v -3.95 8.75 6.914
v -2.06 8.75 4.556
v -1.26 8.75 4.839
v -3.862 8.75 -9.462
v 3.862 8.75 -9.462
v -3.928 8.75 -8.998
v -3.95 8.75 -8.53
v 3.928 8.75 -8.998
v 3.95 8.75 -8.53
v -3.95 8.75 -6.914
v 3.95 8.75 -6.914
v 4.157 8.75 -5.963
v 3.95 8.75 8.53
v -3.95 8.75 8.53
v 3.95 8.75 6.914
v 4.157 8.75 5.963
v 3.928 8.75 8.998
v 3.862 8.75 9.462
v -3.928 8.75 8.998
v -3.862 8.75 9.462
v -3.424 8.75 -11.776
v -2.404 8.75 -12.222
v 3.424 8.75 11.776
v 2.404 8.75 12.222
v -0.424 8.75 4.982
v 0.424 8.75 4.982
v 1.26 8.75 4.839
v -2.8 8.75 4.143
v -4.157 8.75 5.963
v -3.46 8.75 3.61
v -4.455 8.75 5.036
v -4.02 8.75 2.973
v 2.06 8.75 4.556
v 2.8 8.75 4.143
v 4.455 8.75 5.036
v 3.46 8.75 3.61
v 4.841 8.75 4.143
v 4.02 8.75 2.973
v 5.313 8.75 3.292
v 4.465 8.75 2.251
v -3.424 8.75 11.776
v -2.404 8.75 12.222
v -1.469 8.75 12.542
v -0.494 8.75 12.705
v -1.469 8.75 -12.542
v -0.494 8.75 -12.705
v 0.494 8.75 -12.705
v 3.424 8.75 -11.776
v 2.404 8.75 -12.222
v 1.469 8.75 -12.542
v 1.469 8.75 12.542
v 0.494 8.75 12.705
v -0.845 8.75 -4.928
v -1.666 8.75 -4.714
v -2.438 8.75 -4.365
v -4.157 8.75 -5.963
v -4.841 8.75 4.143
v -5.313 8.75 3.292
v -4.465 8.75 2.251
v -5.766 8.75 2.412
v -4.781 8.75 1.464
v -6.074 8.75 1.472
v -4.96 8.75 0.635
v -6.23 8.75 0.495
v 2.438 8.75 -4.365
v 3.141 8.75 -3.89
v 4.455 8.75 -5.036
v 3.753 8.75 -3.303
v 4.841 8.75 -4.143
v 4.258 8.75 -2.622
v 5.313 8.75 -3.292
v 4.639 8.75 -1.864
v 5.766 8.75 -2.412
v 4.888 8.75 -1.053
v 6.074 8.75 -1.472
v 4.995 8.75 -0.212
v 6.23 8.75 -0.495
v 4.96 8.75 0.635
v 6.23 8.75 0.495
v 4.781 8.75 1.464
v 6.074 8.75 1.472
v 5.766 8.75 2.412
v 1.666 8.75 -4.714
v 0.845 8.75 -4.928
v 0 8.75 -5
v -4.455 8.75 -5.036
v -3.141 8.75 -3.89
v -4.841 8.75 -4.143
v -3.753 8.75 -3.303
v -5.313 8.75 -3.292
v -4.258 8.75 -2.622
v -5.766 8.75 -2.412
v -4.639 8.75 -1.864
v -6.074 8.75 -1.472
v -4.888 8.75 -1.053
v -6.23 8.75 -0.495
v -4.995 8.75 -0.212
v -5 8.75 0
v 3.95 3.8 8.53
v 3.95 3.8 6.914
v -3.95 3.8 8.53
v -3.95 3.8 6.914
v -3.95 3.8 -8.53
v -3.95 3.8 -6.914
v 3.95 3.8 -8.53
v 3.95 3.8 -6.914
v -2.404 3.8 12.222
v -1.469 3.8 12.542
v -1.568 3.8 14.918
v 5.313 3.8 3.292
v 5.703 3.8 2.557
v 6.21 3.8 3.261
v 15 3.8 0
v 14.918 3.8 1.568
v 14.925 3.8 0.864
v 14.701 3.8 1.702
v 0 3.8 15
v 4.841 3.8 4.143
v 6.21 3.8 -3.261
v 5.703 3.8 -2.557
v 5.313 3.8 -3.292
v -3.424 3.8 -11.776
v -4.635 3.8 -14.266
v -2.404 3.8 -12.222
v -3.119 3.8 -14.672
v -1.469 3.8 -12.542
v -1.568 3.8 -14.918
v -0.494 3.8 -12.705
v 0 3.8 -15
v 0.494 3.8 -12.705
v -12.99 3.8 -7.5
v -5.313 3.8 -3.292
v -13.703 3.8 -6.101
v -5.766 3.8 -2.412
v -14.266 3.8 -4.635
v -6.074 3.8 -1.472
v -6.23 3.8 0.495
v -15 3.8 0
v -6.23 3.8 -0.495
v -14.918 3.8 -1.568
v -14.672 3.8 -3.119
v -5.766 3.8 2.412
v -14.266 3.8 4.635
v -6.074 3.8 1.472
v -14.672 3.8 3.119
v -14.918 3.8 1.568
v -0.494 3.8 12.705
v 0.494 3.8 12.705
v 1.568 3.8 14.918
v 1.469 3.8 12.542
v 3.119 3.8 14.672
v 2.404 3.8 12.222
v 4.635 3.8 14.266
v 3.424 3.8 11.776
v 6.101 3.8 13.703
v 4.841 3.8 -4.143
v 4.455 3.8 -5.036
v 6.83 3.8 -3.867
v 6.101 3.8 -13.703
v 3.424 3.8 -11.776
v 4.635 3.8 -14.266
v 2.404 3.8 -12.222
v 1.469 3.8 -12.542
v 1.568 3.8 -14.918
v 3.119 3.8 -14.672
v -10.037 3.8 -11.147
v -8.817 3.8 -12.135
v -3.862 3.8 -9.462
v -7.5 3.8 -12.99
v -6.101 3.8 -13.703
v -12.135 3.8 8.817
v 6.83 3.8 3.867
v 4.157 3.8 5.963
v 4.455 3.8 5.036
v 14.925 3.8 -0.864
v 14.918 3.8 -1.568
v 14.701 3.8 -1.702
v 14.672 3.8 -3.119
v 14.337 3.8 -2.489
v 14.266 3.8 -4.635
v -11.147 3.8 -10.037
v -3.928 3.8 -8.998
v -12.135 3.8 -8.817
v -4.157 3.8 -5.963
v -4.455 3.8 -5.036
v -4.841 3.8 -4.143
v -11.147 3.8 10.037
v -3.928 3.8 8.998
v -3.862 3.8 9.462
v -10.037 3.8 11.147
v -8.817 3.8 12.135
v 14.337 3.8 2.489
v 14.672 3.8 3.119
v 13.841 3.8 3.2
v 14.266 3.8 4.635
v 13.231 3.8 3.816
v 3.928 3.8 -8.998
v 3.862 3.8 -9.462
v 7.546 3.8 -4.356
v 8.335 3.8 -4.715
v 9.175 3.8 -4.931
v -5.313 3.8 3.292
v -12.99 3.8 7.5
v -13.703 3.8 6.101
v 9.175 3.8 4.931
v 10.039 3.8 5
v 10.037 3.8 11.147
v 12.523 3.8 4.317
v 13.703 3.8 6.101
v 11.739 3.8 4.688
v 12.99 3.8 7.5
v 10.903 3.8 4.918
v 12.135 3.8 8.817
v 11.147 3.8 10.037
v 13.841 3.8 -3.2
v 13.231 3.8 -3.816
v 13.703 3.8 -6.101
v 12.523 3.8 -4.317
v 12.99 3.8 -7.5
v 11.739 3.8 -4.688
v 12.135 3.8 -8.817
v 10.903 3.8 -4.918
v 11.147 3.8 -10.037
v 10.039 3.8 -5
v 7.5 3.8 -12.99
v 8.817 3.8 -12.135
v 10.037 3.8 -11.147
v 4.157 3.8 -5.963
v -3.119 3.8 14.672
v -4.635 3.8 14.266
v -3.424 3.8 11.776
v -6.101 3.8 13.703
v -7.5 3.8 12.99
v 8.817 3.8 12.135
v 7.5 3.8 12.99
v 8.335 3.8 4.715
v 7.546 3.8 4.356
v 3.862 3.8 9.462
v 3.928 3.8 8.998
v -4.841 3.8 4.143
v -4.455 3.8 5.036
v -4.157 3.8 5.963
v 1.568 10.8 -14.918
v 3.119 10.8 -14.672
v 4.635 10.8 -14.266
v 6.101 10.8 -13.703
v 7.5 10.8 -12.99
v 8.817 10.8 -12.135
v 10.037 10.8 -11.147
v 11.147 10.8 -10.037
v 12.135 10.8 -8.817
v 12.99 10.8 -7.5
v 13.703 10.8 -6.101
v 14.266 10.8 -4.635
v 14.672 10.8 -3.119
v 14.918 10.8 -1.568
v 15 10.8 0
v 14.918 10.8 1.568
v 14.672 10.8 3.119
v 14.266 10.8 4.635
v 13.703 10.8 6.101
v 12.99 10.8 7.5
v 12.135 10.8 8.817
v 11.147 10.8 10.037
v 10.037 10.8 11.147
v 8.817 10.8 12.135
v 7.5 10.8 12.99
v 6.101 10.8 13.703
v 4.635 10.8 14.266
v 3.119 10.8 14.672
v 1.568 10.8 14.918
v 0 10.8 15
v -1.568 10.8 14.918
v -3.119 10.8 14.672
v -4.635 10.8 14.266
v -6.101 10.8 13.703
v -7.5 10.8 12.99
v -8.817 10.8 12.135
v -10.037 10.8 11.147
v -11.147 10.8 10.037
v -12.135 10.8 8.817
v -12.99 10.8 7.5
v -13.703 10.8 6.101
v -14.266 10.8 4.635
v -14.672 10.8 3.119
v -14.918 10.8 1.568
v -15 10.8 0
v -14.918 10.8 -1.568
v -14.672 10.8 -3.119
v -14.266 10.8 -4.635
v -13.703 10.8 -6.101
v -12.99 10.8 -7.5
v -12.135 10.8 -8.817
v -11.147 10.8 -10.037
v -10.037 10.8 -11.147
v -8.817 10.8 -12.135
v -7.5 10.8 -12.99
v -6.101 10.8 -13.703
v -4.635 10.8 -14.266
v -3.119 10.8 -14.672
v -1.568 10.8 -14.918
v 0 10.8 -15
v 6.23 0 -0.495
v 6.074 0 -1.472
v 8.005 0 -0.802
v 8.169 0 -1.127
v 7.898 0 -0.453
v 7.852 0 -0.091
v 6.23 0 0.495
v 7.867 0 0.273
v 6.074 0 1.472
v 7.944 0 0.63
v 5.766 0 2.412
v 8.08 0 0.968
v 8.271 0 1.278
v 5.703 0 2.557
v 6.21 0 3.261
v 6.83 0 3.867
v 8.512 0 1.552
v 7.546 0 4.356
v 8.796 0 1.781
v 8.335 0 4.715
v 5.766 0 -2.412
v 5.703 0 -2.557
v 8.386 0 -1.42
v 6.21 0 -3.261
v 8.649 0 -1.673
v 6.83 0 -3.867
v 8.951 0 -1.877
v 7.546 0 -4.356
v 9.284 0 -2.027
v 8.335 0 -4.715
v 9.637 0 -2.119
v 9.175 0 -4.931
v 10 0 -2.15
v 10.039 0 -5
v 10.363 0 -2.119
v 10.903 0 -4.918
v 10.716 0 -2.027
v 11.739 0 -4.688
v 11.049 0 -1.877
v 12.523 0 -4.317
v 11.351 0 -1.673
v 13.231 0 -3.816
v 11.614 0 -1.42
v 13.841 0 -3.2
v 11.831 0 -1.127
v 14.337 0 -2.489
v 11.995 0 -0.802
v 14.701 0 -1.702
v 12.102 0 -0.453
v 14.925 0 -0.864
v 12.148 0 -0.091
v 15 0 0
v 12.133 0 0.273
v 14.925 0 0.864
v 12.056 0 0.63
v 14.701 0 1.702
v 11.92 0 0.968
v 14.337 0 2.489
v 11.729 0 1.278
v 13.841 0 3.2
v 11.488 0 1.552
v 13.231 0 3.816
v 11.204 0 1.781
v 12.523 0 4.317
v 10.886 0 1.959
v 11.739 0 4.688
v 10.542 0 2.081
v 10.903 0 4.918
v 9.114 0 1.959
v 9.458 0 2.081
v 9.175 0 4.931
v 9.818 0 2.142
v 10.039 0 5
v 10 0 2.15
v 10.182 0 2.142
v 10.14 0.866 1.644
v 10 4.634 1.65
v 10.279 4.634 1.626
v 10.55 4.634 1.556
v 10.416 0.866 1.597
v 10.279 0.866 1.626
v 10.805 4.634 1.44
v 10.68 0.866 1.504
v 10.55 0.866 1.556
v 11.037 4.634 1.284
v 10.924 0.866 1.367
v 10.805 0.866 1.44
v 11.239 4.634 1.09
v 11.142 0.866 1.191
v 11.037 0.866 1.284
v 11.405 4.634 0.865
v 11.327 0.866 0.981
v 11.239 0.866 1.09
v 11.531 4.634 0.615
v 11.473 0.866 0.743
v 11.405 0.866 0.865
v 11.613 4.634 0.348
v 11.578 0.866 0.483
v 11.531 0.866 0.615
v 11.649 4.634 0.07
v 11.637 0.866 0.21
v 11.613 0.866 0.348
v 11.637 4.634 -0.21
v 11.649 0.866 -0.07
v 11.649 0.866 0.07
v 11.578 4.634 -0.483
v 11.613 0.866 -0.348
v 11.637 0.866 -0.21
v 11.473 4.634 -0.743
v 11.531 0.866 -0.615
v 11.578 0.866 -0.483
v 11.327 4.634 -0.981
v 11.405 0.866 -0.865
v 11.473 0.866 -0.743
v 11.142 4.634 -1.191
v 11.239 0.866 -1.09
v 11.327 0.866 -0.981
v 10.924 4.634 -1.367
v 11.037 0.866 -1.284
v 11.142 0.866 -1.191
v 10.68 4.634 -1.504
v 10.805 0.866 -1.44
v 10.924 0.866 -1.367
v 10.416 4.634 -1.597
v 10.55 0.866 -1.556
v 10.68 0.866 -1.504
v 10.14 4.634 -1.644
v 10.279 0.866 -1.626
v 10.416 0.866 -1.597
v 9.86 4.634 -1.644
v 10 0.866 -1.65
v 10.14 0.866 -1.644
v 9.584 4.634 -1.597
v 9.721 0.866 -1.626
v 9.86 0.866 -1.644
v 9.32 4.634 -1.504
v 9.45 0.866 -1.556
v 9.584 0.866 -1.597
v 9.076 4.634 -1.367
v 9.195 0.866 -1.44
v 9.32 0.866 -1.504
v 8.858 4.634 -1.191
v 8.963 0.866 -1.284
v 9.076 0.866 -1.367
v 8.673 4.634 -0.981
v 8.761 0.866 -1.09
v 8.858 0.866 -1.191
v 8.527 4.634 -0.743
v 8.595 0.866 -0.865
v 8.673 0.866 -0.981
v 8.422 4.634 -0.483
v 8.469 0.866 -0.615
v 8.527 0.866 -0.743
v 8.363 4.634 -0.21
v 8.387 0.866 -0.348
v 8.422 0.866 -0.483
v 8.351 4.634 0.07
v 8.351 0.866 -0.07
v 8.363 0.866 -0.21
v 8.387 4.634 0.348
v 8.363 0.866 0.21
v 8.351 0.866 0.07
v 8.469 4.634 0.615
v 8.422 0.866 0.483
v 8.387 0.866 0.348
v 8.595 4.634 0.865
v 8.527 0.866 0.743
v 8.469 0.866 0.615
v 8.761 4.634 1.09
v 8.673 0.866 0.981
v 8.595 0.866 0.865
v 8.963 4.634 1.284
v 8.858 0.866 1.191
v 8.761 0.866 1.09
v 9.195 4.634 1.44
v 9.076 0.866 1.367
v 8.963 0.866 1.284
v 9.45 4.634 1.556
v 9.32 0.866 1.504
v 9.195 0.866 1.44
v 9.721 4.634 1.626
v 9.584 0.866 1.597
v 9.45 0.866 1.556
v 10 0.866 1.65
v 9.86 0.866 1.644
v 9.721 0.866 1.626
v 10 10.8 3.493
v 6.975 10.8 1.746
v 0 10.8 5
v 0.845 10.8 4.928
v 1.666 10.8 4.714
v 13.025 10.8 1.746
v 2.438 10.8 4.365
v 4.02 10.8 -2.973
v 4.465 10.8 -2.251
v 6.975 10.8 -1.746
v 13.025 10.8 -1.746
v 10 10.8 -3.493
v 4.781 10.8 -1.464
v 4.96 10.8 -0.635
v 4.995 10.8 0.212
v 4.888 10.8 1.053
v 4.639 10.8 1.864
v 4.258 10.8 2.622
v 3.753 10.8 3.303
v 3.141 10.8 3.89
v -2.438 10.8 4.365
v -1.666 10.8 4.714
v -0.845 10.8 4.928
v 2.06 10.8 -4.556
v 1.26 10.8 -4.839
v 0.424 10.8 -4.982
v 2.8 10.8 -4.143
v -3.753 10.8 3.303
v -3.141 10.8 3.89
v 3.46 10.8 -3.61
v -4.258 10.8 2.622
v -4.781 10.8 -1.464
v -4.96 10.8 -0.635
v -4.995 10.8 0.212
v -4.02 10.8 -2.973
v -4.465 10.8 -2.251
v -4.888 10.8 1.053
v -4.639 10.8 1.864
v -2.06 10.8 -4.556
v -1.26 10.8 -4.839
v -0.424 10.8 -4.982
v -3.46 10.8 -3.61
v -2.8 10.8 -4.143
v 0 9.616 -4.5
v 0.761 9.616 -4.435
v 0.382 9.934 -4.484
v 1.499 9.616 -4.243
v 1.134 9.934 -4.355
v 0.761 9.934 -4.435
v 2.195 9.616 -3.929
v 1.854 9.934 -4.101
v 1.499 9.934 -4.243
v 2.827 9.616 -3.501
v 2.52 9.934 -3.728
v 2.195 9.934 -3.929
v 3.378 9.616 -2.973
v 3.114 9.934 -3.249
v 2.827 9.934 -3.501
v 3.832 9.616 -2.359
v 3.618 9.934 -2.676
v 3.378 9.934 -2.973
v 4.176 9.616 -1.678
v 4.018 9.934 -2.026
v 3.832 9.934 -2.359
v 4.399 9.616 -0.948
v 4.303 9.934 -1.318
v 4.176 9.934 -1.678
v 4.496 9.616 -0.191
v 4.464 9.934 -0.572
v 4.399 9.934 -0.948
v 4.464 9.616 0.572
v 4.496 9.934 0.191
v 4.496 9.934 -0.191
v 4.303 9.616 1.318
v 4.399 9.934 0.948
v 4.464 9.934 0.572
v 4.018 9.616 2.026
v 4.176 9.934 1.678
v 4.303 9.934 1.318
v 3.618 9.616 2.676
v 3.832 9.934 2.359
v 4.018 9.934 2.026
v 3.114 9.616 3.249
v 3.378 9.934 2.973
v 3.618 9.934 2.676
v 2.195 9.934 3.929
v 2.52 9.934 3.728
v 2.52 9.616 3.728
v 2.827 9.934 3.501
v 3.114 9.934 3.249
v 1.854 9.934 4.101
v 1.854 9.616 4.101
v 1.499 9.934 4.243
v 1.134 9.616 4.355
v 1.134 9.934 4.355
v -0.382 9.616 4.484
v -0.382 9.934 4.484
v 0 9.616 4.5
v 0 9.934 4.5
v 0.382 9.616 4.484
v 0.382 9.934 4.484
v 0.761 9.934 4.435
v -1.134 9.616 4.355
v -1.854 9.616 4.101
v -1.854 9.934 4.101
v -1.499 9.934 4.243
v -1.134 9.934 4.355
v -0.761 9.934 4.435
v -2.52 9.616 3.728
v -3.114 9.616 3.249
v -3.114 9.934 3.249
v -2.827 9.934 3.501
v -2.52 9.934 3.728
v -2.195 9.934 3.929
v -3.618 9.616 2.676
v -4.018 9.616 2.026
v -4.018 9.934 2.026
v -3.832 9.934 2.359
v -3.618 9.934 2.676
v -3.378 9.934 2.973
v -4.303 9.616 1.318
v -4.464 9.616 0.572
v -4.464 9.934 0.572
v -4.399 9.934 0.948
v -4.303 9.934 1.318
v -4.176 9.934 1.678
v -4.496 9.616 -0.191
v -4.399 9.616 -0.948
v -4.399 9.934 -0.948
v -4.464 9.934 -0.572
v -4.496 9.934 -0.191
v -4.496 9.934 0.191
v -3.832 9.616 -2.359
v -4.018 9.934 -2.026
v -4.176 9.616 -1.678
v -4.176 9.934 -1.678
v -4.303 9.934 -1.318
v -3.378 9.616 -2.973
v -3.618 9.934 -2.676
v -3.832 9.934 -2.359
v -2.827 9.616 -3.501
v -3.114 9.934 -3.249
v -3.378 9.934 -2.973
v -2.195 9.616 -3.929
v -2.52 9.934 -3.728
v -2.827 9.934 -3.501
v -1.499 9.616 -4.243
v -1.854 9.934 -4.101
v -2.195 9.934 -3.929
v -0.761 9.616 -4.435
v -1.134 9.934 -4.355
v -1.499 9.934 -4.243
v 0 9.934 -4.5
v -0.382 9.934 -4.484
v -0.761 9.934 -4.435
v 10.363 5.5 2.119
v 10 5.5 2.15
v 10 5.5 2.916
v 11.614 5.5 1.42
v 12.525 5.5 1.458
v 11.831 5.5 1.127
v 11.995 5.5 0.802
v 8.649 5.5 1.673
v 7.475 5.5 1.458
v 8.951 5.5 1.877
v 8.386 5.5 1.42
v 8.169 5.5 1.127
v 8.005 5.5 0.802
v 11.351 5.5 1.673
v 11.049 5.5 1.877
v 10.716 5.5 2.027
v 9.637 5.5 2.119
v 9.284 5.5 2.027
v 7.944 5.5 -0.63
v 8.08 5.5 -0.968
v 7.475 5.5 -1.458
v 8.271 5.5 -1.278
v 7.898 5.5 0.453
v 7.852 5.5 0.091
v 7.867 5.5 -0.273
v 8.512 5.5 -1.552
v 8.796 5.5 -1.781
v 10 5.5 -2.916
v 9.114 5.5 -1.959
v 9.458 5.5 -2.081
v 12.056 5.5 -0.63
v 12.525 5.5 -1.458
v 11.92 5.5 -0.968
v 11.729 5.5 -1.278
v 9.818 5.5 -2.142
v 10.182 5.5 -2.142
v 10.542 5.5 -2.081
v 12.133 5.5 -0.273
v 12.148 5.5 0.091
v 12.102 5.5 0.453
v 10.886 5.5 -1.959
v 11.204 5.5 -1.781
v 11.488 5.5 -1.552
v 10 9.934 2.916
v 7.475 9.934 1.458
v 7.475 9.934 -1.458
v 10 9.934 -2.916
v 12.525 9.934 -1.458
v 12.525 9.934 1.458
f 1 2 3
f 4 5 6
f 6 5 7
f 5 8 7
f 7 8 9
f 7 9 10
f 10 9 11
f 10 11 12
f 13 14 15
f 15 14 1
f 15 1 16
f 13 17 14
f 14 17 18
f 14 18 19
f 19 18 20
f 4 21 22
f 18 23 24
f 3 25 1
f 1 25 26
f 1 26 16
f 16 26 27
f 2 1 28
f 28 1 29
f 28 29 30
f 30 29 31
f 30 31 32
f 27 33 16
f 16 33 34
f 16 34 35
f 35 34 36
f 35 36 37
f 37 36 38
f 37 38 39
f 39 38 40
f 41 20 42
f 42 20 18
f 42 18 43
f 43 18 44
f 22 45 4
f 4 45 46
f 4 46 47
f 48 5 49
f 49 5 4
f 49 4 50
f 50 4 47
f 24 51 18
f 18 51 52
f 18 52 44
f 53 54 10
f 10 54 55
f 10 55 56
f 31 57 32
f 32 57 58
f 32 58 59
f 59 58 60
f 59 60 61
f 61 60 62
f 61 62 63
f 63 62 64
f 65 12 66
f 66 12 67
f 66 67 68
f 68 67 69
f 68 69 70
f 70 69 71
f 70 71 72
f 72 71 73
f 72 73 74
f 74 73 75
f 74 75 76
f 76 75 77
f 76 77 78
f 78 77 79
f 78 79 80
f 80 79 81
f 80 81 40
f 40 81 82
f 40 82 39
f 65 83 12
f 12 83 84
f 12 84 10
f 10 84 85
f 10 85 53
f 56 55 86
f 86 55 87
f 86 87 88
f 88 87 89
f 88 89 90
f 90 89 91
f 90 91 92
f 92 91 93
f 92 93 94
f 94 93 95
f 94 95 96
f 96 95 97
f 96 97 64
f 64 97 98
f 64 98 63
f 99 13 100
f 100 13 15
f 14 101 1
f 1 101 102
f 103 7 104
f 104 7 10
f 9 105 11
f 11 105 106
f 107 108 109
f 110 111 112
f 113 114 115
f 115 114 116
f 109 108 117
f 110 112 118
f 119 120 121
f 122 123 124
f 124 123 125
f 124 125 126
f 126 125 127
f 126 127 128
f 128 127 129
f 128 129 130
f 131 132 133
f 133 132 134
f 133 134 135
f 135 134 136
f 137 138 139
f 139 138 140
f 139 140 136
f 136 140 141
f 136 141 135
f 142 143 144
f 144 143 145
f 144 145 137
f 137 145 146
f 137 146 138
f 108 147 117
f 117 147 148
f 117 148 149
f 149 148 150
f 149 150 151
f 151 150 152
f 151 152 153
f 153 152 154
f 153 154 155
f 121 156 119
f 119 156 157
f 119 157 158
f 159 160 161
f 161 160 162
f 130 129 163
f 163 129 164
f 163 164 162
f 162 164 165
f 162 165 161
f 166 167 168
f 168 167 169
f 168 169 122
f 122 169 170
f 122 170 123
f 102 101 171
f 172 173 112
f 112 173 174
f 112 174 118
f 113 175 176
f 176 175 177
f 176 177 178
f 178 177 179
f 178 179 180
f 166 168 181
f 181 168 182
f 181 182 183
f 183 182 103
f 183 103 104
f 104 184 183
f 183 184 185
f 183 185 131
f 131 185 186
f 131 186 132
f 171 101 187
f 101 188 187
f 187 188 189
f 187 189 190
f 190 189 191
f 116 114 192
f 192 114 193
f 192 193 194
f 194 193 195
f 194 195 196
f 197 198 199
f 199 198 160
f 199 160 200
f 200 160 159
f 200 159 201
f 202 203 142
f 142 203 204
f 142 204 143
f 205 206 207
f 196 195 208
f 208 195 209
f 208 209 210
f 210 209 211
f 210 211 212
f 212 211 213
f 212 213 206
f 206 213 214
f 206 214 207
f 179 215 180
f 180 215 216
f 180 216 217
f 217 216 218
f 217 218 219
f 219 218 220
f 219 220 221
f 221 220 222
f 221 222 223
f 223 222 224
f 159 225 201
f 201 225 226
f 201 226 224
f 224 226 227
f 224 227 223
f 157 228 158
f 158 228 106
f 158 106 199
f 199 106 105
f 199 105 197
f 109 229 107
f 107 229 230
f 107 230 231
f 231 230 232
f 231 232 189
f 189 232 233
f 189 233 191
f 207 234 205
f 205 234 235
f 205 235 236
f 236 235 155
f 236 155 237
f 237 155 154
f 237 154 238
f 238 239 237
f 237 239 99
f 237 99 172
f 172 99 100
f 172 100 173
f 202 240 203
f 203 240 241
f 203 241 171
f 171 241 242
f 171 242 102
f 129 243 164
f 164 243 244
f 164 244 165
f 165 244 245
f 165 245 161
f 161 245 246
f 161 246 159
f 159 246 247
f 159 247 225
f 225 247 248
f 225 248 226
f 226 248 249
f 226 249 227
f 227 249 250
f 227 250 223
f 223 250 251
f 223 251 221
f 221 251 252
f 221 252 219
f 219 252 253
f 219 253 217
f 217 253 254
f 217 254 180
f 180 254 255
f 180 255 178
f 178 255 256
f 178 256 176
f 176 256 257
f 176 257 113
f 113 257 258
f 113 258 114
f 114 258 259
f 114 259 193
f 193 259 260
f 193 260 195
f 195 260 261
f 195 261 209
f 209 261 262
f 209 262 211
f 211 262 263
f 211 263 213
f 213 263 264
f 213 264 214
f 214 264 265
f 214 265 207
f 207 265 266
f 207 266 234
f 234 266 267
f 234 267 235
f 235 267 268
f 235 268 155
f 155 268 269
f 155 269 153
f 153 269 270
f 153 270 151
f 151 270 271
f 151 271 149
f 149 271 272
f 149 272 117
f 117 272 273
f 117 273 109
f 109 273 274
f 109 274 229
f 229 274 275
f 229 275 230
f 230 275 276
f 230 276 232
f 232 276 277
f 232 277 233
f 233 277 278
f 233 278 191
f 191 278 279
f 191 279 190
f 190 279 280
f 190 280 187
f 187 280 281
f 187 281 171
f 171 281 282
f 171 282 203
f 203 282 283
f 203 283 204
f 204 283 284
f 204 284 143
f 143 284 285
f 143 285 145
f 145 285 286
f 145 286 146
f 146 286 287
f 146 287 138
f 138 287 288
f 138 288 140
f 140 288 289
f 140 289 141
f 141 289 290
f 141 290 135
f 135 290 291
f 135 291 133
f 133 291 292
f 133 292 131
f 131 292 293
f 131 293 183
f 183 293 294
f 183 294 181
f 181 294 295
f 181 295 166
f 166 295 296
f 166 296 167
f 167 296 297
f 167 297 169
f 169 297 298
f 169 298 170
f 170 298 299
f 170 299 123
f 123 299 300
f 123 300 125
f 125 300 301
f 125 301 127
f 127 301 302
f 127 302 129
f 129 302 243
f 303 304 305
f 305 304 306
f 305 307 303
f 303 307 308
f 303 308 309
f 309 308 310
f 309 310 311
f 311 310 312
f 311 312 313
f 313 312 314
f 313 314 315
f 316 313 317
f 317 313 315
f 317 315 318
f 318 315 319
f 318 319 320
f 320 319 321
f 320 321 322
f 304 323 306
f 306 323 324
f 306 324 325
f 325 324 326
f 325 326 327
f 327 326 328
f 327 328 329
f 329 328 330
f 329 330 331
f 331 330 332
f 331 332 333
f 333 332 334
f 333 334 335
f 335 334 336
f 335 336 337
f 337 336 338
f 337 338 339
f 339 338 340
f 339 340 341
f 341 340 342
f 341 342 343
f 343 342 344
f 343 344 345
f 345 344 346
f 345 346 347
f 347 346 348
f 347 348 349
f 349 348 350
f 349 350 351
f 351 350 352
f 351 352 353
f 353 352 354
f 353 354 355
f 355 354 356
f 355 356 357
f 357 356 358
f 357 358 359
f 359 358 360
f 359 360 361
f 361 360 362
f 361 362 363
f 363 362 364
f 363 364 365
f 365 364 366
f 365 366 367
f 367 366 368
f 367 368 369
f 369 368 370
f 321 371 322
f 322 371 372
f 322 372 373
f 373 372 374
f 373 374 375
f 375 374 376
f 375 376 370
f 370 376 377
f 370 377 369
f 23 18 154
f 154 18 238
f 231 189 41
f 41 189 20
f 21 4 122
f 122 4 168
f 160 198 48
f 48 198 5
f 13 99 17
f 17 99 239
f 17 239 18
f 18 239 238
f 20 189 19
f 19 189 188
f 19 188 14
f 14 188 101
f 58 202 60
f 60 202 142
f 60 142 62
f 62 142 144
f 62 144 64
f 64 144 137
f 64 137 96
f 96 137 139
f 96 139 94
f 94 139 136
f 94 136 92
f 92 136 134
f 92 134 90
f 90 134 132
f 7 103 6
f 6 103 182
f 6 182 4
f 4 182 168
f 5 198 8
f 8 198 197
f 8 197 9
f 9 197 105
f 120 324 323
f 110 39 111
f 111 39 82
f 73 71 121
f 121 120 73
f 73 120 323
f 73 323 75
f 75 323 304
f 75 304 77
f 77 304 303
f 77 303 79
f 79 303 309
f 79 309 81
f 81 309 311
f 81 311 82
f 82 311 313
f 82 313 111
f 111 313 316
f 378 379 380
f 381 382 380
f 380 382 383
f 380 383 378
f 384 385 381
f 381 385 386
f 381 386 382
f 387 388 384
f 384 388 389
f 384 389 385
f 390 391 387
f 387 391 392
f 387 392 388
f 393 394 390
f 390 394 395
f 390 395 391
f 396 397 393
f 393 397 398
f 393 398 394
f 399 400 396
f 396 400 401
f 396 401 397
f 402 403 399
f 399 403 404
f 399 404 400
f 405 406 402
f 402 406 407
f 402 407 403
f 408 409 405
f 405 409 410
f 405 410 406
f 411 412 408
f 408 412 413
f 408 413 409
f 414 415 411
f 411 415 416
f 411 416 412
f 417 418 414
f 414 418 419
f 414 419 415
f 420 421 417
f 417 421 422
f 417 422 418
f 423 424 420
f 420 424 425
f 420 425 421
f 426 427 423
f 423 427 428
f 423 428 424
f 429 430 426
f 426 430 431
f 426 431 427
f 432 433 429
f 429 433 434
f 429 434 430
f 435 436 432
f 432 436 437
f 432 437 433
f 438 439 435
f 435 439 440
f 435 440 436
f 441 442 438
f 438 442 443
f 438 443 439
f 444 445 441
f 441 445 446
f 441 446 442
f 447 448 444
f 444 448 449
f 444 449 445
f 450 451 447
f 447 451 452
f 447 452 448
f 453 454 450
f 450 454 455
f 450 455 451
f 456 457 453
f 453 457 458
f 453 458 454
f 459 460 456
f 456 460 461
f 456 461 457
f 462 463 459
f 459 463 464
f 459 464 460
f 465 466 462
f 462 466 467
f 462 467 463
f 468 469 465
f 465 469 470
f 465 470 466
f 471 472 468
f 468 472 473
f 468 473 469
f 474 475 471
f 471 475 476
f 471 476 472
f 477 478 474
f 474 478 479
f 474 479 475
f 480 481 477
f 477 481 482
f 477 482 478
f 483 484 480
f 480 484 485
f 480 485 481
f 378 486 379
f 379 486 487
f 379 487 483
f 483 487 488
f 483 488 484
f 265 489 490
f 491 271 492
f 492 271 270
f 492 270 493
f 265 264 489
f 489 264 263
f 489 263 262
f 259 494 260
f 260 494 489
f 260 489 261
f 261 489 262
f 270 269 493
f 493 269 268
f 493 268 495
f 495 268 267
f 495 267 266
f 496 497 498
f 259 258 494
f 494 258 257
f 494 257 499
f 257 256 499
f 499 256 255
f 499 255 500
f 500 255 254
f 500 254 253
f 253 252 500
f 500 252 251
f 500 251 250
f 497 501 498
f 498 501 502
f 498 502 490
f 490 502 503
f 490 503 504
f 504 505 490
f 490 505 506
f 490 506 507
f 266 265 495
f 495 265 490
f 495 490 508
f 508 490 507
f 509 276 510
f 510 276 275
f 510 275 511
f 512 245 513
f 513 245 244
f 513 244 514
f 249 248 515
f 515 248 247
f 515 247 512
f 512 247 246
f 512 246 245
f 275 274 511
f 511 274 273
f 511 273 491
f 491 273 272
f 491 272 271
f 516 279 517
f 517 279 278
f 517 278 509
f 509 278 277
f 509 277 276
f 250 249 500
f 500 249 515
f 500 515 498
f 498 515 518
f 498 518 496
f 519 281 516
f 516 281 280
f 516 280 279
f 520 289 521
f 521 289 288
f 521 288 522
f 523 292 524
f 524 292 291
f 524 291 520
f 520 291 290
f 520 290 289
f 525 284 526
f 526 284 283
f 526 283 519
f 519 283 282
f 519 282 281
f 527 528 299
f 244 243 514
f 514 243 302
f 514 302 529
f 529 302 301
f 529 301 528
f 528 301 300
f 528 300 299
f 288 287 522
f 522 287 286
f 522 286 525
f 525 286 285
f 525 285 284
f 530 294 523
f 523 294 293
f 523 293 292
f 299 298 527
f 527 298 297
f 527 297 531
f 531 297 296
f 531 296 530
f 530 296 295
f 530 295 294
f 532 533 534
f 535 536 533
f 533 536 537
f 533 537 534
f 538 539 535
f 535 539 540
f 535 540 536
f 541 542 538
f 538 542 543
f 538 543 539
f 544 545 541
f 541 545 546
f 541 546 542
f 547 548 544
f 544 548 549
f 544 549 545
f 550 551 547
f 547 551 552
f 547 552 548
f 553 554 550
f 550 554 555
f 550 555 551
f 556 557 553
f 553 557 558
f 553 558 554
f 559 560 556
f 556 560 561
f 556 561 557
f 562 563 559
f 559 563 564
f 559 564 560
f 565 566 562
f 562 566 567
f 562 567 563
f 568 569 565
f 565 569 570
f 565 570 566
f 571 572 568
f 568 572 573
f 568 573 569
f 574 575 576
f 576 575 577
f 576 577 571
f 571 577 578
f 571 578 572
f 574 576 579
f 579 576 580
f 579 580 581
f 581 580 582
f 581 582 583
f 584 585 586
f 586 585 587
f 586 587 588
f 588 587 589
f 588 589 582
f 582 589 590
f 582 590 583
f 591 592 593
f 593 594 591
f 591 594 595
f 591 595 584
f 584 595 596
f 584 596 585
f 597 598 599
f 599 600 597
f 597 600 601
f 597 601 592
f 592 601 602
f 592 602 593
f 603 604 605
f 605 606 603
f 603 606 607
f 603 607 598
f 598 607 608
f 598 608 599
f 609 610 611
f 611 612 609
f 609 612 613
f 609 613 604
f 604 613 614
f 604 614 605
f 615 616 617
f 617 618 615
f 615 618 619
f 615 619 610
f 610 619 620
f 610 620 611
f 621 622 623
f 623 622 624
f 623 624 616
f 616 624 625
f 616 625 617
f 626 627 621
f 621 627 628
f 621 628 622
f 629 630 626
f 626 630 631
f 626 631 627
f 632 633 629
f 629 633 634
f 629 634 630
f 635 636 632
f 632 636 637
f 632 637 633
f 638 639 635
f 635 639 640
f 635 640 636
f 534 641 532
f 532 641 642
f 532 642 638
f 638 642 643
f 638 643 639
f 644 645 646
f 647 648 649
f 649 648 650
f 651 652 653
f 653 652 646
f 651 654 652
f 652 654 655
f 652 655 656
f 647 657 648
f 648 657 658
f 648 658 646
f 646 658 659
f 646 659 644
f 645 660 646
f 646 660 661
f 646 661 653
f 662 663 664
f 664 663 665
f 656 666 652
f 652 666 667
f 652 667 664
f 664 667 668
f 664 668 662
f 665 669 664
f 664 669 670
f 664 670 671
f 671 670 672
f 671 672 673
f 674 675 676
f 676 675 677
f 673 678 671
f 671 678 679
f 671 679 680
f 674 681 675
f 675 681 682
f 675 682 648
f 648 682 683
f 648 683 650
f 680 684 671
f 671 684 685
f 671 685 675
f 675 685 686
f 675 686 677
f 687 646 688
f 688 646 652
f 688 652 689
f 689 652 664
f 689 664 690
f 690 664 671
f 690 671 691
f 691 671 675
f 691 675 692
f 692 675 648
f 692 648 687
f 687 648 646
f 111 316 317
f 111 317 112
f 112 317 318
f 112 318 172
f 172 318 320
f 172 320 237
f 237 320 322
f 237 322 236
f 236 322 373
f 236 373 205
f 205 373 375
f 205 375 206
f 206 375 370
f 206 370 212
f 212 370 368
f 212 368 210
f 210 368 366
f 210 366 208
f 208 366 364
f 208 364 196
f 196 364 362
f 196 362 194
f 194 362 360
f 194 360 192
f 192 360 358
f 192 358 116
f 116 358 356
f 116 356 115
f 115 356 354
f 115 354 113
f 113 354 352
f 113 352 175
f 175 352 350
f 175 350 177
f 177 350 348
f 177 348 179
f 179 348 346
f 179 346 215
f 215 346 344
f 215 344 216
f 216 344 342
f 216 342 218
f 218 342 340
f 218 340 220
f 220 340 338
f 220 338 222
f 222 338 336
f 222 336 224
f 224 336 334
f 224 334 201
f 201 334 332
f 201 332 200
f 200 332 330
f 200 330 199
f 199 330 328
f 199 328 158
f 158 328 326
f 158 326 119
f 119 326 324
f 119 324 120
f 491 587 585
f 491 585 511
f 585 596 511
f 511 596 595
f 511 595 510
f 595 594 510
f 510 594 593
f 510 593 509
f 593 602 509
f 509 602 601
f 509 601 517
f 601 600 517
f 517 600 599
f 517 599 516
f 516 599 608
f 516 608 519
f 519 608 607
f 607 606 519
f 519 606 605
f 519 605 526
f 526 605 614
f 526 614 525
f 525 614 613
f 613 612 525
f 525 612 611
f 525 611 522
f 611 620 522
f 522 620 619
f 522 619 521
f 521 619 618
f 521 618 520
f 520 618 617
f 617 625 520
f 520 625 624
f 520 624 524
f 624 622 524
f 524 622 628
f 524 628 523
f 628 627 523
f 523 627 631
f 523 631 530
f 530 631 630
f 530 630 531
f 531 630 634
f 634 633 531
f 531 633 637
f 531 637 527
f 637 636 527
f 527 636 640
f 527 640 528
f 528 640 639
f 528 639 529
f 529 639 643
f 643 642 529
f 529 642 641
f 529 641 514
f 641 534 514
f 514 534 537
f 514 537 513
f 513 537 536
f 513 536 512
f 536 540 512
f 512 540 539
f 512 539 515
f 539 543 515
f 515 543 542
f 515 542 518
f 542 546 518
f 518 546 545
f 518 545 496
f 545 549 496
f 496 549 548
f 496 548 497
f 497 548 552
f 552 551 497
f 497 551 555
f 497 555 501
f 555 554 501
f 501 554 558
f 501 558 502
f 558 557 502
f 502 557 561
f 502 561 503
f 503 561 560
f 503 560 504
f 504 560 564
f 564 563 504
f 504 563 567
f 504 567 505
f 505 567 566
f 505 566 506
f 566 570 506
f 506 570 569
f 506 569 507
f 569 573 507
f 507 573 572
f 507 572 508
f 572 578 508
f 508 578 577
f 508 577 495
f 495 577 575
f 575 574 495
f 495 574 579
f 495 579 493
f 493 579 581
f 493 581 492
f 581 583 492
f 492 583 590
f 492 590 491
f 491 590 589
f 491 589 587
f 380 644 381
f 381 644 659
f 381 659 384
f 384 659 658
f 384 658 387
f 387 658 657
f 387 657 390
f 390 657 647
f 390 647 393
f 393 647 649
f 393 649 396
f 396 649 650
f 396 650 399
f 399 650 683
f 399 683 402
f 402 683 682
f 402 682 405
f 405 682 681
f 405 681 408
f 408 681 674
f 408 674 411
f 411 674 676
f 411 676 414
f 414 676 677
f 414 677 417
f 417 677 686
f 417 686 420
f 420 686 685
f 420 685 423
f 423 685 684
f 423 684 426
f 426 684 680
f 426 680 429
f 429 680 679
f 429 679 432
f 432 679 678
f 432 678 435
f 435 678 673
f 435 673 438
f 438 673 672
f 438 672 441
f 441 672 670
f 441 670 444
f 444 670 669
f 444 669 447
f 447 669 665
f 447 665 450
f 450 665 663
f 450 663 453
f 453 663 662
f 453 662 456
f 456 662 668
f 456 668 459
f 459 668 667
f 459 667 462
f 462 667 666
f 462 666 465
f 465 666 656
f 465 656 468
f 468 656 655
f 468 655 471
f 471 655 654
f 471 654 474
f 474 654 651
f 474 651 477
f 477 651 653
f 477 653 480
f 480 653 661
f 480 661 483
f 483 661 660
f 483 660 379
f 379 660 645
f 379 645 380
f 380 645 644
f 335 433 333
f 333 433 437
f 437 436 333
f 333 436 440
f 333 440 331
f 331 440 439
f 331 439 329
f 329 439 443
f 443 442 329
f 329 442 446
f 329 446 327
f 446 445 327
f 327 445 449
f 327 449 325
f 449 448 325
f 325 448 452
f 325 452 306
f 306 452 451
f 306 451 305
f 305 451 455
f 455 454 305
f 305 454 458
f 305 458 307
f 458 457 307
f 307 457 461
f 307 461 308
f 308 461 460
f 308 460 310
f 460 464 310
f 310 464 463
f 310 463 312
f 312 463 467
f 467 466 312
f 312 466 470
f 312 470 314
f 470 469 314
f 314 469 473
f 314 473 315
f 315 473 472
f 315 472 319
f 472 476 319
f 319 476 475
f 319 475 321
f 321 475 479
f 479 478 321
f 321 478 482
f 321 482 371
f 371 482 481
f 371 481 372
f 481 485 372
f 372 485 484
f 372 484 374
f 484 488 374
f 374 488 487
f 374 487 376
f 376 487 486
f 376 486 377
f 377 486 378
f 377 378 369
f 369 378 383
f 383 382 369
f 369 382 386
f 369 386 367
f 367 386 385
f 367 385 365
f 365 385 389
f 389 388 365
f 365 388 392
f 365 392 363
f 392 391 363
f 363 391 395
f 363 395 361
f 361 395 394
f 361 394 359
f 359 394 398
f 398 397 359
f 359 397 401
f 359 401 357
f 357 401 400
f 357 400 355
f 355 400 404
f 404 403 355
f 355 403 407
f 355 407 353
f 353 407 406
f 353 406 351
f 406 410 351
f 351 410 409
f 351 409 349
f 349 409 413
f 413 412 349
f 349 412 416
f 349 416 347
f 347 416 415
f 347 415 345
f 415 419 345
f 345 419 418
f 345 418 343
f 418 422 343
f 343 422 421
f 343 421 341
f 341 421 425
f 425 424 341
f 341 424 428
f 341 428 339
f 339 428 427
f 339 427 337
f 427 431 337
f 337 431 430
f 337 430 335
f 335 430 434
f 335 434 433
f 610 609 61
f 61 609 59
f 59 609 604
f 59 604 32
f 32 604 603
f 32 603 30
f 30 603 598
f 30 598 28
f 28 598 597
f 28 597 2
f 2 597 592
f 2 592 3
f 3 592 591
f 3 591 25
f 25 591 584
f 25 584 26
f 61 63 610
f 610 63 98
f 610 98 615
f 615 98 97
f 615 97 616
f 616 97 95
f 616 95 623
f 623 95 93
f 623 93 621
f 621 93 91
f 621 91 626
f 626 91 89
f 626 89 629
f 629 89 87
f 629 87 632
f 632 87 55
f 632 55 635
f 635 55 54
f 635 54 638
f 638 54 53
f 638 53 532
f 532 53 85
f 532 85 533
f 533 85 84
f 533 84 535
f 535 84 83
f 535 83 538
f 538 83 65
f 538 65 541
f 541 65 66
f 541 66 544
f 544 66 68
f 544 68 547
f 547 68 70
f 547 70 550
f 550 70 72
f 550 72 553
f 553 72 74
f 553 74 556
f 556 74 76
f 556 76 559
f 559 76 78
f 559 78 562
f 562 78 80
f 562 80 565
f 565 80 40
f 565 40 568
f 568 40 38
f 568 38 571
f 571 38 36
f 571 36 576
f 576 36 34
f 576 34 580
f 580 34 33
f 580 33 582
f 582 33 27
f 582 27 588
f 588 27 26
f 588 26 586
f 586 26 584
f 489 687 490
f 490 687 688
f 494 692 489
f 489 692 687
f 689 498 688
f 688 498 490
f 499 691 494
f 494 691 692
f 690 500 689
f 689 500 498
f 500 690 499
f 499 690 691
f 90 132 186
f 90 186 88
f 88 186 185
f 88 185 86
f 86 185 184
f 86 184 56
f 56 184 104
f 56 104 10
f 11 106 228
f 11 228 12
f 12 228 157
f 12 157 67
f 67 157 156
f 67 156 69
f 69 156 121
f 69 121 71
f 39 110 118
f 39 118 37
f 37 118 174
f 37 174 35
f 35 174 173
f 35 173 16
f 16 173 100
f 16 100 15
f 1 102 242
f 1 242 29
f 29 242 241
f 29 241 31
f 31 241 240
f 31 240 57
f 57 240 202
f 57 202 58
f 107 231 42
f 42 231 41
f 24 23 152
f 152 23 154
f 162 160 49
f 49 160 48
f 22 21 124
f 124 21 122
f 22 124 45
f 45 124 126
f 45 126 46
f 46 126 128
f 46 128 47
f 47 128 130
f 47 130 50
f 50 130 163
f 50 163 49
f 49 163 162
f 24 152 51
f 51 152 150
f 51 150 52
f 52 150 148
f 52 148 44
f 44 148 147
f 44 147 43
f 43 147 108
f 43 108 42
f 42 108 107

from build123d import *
from OCP.BRepFilletAPI import BRepFilletAPI_MakeChamfer

# Parameters (mm, degrees)
SKETCH_1_R          = 15
EXTRUDE_1_DEPTH     = 10.8
SKETCH_2_R          = 2
SKETCH_2_R_2        = 1.6500000000000006
CUT_EXTRUDE_1_DEPTH = 24.804201309852846
CUT_EXTRUDE_START   = -8.75
CUT_EXTRUDE_2_DEPTH = 8.75
SKETCH_8_R          = 4.5
CUT_EXTRUDE_3_DEPTH = 23.946949687399407
CUT_EXTRUDE_4_DEPTH = 5.3
SKETCH_10_R         = 20.165884728601043
SKETCH_10_R_2       = 4.999999999999998
CUT_EXTRUDE_5_DEPTH = 3.8
CHAMFER_1_SIZE      = 0.5
CHAMFER_1_SIZE2     = 0.8660254037844434
CHAMFER_1_SIZE2_2   = 0.866025403784443
CHAMFER_2_SIZE      = 0.5
CHAMFER_2_SIZE2     = 0.8660254037844434
CHAMFER_5_SIZE      = 3
CUT_EXTRUDE_8_DEPTH = 4.949999997
FILLET_1_R          = 10
EXTRUDE_3_DEPTH     = 4.949999997
FILLET_2_R          = 6


with BuildPart() as part:
    # 草图1 → 凸台-拉伸1 (new body)
    with BuildSketch(Plane(origin=(0, 0, 0), x_dir=(1, 0, 0), z_dir=(0, 1, 0))):
        with Locations(Location((0, 0, 0), (0, 0, 90))):
            Circle(SKETCH_1_R)
    extrude(amount=EXTRUDE_1_DEPTH)

    # 草图2 → 切除-拉伸1 (cut, through all)
    with BuildSketch(Plane(origin=(0, 10.8, 0), x_dir=(1, 0, 0), z_dir=(0, 1, 0))):
        with Locations(Location((0, 0, 0), (0, 0, 270))):
            Circle(SKETCH_2_R)
        with Locations(Location((10, 0, 0), (0, 0, 270))):
            Circle(SKETCH_2_R_2)
    extrude(amount=-CUT_EXTRUDE_1_DEPTH, mode=Mode.SUBTRACT)

    # 草图7 → 切除-拉伸2 (cut)
    with BuildSketch(Plane.XZ.offset(CUT_EXTRUDE_START)):
        with BuildLine():
            Line((3.9499999999999917, -8.530207271324839), (3.9499999999999926, -5.297169055259961))
            ThreePointArc((3.9499999999999926, -5.297169055259961), (4.032732694169919, -4.898896925108727), (4.267241379310367, -4.566525047637877))
            ThreePointArc((4.267241379310367, -4.566525047637877), (6.250000000000189, 1.0156e-13), (4.2672413793103745, 4.5665250476380885))
            ThreePointArc((4.2672413793103745, 4.5665250476380885), (4.03273269416984, 4.898896925108895), (3.9500000000000046, 5.297169055260161))
            Line((3.9500000000000046, 5.297169055260161), (3.9500000000000046, 8.530207271324992))
            ThreePointArc((3.9500000000000046, 8.530207271324992), (3.9280745447413654, 8.997939916110184), (3.8624904692009197, 9.461570460424896))
            Line((3.8624904692009197, 9.461570460424896), (2.357995425216292, 17.39705433076952))
            ThreePointArc((2.357995425216292, 17.39705433076952), (-3.9497e-13, 19.350000000001156), (-2.357995425216957, 17.397054330769397))
            Line((-2.357995425216957, 17.397054330769397), (-3.8624904692015747, 9.461570460424964))
            ThreePointArc((-3.8624904692015747, 9.461570460424964), (-3.9280745447421004, 8.997939916110258), (-3.950000000000667, 8.530207271325056))
            Line((-3.950000000000667, 8.530207271325056), (-3.9500000000006588, 5.297169055260163))
            ThreePointArc((-3.9500000000006588, 5.297169055260163), (-4.0327326941706, 4.898896925108942), (-4.267241379311038, 4.5665250476381))
            ThreePointArc((-4.267241379311038, 4.5665250476381), (-6.250000000000874, 1.1135e-13), (-4.267241379311047, -4.566525047637879))
            ThreePointArc((-4.267241379311047, -4.566525047637879), (-4.032732694170509, -4.898896925108689), (-3.9500000000006716, -5.29716905525996))
            Line((-3.9500000000006716, -5.29716905525996), (-3.950000000000676, -8.530207271324784))
            ThreePointArc((-3.950000000000676, -8.530207271324784), (-3.9280745447420373, -8.997939916109978), (-3.862490469201592, -9.461570460424696))
            Line((-3.862490469201592, -9.461570460424696), (-2.3579954252169664, -17.397054330769286))
            ThreePointArc((-2.3579954252169664, -17.397054330769286), (-2.7734e-13, -19.35000000000094), (2.3579954252163073, -17.39705433076917))
            Line((2.3579954252163073, -17.39705433076917), (3.8624904692009046, -9.461570460424774))
            ThreePointArc((3.8624904692009046, -9.461570460424774), (3.9280745447414347, -8.997939916110052), (3.9499999999999917, -8.530207271324839))
        make_face()
    extrude(amount=CUT_EXTRUDE_2_DEPTH, mode=Mode.SUBTRACT)

    # 草图8 → 切除-拉伸3 (cut, through all)
    with BuildSketch(Plane.XZ.offset(-8.749999997487969)):
        with Locations(Location((0, 0, 0), (0, 0, 270))):
            Circle(SKETCH_8_R)
    extrude(amount=-CUT_EXTRUDE_3_DEPTH, mode=Mode.SUBTRACT)

    # 草图9 → 切除-拉伸4 (cut)
    with BuildSketch(Plane(origin=(0, 10.8, 0), x_dir=(1, 0, 0), z_dir=(0, 1, 0))):
        Polygon((10.000000000000002, -2.9156188594076102), (12.525000000000002, -1.4578094297038038), (12.525000000000002, 1.457809429703804), (10.000000000000002, 2.915618859407609), (7.475000000000001, 1.4578094297038038), (7.475000000000001, -1.457809429703805), align=None)
    extrude(amount=-CUT_EXTRUDE_4_DEPTH, mode=Mode.SUBTRACT)

    # 草图10 → 切除-拉伸5 (cut)
    with BuildSketch(Plane.XZ):
        Circle(SKETCH_10_R)
        with Locations((10, 0)):
            Circle(SKETCH_10_R_2, mode=Mode.SUBTRACT)
    extrude(amount=-CUT_EXTRUDE_5_DEPTH, mode=Mode.SUBTRACT)

    # 倒角1: one chamfer whose edges measure the first distance from different faces: ONE call of the kernel's chamfer builder (chamfer() names one face for all edges)
    chamfer_1_edges_1 = [part.edges().sort_by_distance(p)[0] for p in [
        (1.63e-14, 8.749999997487969, 4.5),
    ]]
    chamfer_1_side_1 = [part.faces().sort_by_distance(p)[0] for p in [
        (-5.92500000000087, 8.75, 1.129e-13),
    ]]
    chamfer_1_edges_2 = [part.edges().sort_by_distance(p)[0] for p in [
        (1.629e-14, 10.8, 4.5),
    ]]
    chamfer_1_side_2 = [part.faces().sort_by_distance(p)[0] for p in [
        (-9.15e-15, 10.8, 14.575735931288072),
    ]]
    chamfer_1_edges_3 = [part.edges().sort_by_distance(p)[0] for p in [
        (10, 5.500000000000001, -1.6500000000000006),
    ]]
    chamfer_1_side_3 = [part.faces().sort_by_distance(p)[0] for p in [
        (11.22392998790079, 5.500000000000001, 2.1199089239513262),
    ]]
    chamfer_1_edges_4 = [part.edges().sort_by_distance(p)[0] for p in [
        (10, 0, -1.6500000000000006),
    ]]
    chamfer_1_side_4 = [part.faces().sort_by_distance(p)[0] for p in [
        (14.863459938199213, 0, -5.27e-14),
    ]]
    chamfer_1 = BRepFilletAPI_MakeChamfer(part.part.solid().wrapped)
    for e in chamfer_1_edges_1:
        chamfer_1.Add(CHAMFER_1_SIZE, CHAMFER_1_SIZE2, e.wrapped, chamfer_1_side_1[0].wrapped)  # the first distance lies on this face
    for e in chamfer_1_edges_2:
        chamfer_1.Add(CHAMFER_1_SIZE, CHAMFER_1_SIZE2_2, e.wrapped, chamfer_1_side_2[0].wrapped)  # the first distance lies on this face
    for e in chamfer_1_edges_3:
        chamfer_1.Add(CHAMFER_1_SIZE, CHAMFER_1_SIZE2, e.wrapped, chamfer_1_side_3[0].wrapped)  # the first distance lies on this face
    for e in chamfer_1_edges_4:
        chamfer_1.Add(CHAMFER_1_SIZE, CHAMFER_1_SIZE2, e.wrapped, chamfer_1_side_4[0].wrapped)  # the first distance lies on this face
    add(Compound.cast(chamfer_1.Shape()), mode=Mode.REPLACE)

    # 倒角2
    chamfer_2_edges = [part.edges().sort_by_distance(p)[0] for p in [
        (8.7375, 10.8, 2.1867141445557077),
        (11.262500000000003, 10.8, 2.1867141445557072),
        (12.525000000000002, 10.8, 0),
        (11.262500000000003, 10.8, -2.1867141445557063),
        (8.7375, 10.8, -2.1867141445557063),
        (7.475000000000001, 10.8, 4.4e-16),
    ]]
    chamfer_2_side = [part.faces().sort_by_distance(p)[0] for p in [
        (1.659e-14, 10.8, 5.424264068711929),
    ]]
    chamfer(chamfer_2_edges, length=CHAMFER_2_SIZE, length2=CHAMFER_2_SIZE2, reference=chamfer_2_side[0])

    # 倒角5
    # the kernel refuses this chamfer: 3, 1.026536878 mm, written as the material it takes off along each edge
    with BuildSketch(Plane(origin=(2.8648031094259725, 8.75, -14.723888859408826), x_dir=(0.9744700322963631, 0, 0.22451760767548937), z_dir=(0, -1, 0))) as chamfer_5_piece_1:
        with BuildLine():
            Line((1.0282150476584273, 1e-17), (CHAMFER_5_SIZE * 0.402105224967, CHAMFER_5_SIZE * 0.915593462217))
            Line((CHAMFER_5_SIZE * 0.402105224967, CHAMFER_5_SIZE * 0.915593462217), (0, 0))
            ThreePointArc((0, 0), (0.5102384602977388, -0.00881230806576972), (1.0282150476584273, 1e-17))
        make_face()
    extrude(amount=12.732584197651619, mode=Mode.SUBTRACT)
    with BuildSketch(Plane(origin=(-2.864803109426696, 8.75, 14.723888859408683), x_dir=(-0.974470032296352, 0, -0.22451760767553783), z_dir=(0, -1, 0))) as chamfer_5_piece_2:
        with BuildLine():
            Line((1.028215047658435, -1e-17), (CHAMFER_5_SIZE * 0.402105224967, CHAMFER_5_SIZE * 0.915593462217))
            Line((CHAMFER_5_SIZE * 0.402105224967, CHAMFER_5_SIZE * 0.915593462217), (0, 0))
            ThreePointArc((0, 0), (0.5102384602977391, -0.00881230806576976), (1.028215047658435, -1e-17))
        make_face()
    extrude(amount=12.732584197651615, mode=Mode.SUBTRACT)
    with BuildSketch(Plane(origin=(2.86480310942602, 8.75, 14.723888859408815), x_dir=(0.9744700322963621, 0, -0.22451760767549345), z_dir=(0, -1, 0))) as chamfer_5_piece_3:
        with BuildLine():
            Line((1.0282150476584324, 0), (CHAMFER_5_SIZE * 0.402105224967, -CHAMFER_5_SIZE * 0.915593462217))
            Line((CHAMFER_5_SIZE * 0.402105224967, -CHAMFER_5_SIZE * 0.915593462217), (0, 0))
            ThreePointArc((0, 0), (0.510238460297736, 0.00881230806577126), (1.0282150476584324, 0))
        make_face()
    extrude(amount=12.73258419765161, mode=Mode.SUBTRACT)
    with BuildSketch(Plane(origin=(-2.864803109426677, 8.75, -14.723888859408687), x_dir=(-0.9744700322963524, 0, 0.22451760767553572), z_dir=(0, -1, 0))) as chamfer_5_piece_4:
        with BuildLine():
            Line((1.0282150476584369, 1e-17), (CHAMFER_5_SIZE * 0.402105224967, -CHAMFER_5_SIZE * 0.915593462217))
            Line((CHAMFER_5_SIZE * 0.402105224967, -CHAMFER_5_SIZE * 0.915593462217), (0, 0))
            ThreePointArc((0, 0), (0.5102384602977413, 0.00881230806576916), (1.0282150476584369, 1e-17))
        make_face()
    extrude(amount=12.73258419765161, mode=Mode.SUBTRACT)

    # 草图15 → 切除-拉伸8 (cut)
    with BuildSketch(Plane.XZ.offset(-8.749999997487969)):
        Polygon((-3.9500000000006734, 6.9136881632925755), (-4.267241379311041, 4.566525047638101), (4.2672413793103265, 4.566525047638054), (3.94999999999999, 6.913688163292576), align=None)
        Polygon((3.9499999999999864, -6.913688163292576), (-3.95000000000067, -6.9136881632925755), (-4.267241379311037, -4.566525047638101), (4.267241379310323, -4.566525047638054), align=None)
    extrude(amount=CUT_EXTRUDE_8_DEPTH, mode=Mode.SUBTRACT)

    # 圆角1
    # the kernel refuses this fillet: 10 mm, written as the material it takes off along each edge
    with BuildSketch(Plane(origin=(-4.267241379311048, 8.75, -4.566525047637879), x_dir=(0.1339416025290595, 0, -0.9909892265367709), z_dir=(0, -1, 0))) as fillet_1_piece_1:
        with BuildLine():
            CenterArc((2.6767916675051966, -9.995246842433291), FILLET_1_R, 91.76663137711618, 22.314975038449404)
            ThreePointArc((-1.403582267080249, -0.865594682906308), (-0.6731180144781167, -0.47929148270895244), (0, 0))
            Line((0, 0), (2.3685051792716596, 0))
        make_face()
    extrude(amount=10.87126294817915, mode=Mode.SUBTRACT)
    with BuildSketch(Plane(origin=(4.2672413793103665, 8.75, -4.566525047637878), x_dir=(0.6341871066199304, 0, 0.7731796128953744), z_dir=(0, -1, 0))) as fillet_1_piece_2:
        with BuildLine():
            CenterArc((2.968252578056993, -9.912600552088037), FILLET_1_R, 97.58069095736383, 22.314975038449475)
            Line((-2.0159690616089736, -1.2432560182328116), (0, 0))
            ThreePointArc((0, 0), (0.8245146050158637, -0.05462465494498077), (1.6490292100317274, 2e-17))
        make_face()
    extrude(amount=10.871262948179146, mode=Mode.SUBTRACT)
    with BuildSketch(Plane(origin=(4.267241379310374, 8.75, 4.566525047638088), x_dir=(-0.13394160252906265, 0, 0.9909892265367705), z_dir=(0, -1, 0))) as fillet_1_piece_3:
        with BuildLine():
            CenterArc((2.676791667505193, -9.995246842433284), FILLET_1_R, 91.76663137711736, 22.314975038448097)
            ThreePointArc((-1.4035822670802323, -0.8655946829062929), (-0.673118014478111, -0.4792914827089432), (0, 0))
            Line((0, 0), (2.3685051792714518, -2e-17))
        make_face()
    extrude(amount=10.87126294817863, mode=Mode.SUBTRACT)
    with BuildSketch(Plane(origin=(-4.267241379311038, 8.75, 4.5665250476381), x_dir=(-0.6341871066199348, 0, -0.7731796128953706), z_dir=(0, -1, 0))) as fillet_1_piece_4:
        with BuildLine():
            CenterArc((2.9682525780569233, -9.91260055208804), FILLET_1_R, 97.58069095736364, 22.314975038448054)
            Line((-2.0159690616087995, -1.243256018232675), (0, 0))
            ThreePointArc((0, 0), (0.8245146050158442, -0.05462465494498064), (1.6490292100316903, 3e-17))
        make_face()
    extrude(amount=10.871262948178595, mode=Mode.SUBTRACT)

    # 凸台-拉伸3: read off the stored shape, not the designer's step
    # 凸台-拉伸3 outline → 凸台-拉伸3 (add)
    with BuildSketch(Plane.XZ.offset(-8.749999997487969)):
        with BuildLine():
            Line((-3.423621023, 11.776394578), (0, 13.273669394))
            Line((0, 13.273669394), (3.423621023, 11.776394578))
            Line((3.423621023, 11.776394578), (3.86676786, 14.493036477))
            ThreePointArc((3.86676786, 14.493036477), (0, 15), (-3.86676786, 14.493036477))
            Line((-3.86676786, 14.493036477), (-3.423621023, 11.776394578))
        make_face()
        with BuildLine():
            Line((-3.423621023, -11.776394578), (-3.86676786, -14.493036477))
            ThreePointArc((-3.86676786, -14.493036477), (0, -15), (3.86676786, -14.493036477))
            Line((3.86676786, -14.493036477), (3.423621023, -11.776394578))
            Line((3.423621023, -11.776394578), (0, -13.273669394))
            Line((0, -13.273669394), (-3.423621023, -11.776394578))
        make_face()
    extrude(amount=EXTRUDE_3_DEPTH)

    # 圆角2
    fillet_2_edges = [part.edges().sort_by_distance(p)[0] for p in [
        (1.07e-14, 6.274999998987969, 13.273669394),
        (1.07e-14, 6.274999998987969, -13.273669394),
    ]]
    fillet(fillet_2_edges, radius=FILLET_2_R)


solid = part.part
